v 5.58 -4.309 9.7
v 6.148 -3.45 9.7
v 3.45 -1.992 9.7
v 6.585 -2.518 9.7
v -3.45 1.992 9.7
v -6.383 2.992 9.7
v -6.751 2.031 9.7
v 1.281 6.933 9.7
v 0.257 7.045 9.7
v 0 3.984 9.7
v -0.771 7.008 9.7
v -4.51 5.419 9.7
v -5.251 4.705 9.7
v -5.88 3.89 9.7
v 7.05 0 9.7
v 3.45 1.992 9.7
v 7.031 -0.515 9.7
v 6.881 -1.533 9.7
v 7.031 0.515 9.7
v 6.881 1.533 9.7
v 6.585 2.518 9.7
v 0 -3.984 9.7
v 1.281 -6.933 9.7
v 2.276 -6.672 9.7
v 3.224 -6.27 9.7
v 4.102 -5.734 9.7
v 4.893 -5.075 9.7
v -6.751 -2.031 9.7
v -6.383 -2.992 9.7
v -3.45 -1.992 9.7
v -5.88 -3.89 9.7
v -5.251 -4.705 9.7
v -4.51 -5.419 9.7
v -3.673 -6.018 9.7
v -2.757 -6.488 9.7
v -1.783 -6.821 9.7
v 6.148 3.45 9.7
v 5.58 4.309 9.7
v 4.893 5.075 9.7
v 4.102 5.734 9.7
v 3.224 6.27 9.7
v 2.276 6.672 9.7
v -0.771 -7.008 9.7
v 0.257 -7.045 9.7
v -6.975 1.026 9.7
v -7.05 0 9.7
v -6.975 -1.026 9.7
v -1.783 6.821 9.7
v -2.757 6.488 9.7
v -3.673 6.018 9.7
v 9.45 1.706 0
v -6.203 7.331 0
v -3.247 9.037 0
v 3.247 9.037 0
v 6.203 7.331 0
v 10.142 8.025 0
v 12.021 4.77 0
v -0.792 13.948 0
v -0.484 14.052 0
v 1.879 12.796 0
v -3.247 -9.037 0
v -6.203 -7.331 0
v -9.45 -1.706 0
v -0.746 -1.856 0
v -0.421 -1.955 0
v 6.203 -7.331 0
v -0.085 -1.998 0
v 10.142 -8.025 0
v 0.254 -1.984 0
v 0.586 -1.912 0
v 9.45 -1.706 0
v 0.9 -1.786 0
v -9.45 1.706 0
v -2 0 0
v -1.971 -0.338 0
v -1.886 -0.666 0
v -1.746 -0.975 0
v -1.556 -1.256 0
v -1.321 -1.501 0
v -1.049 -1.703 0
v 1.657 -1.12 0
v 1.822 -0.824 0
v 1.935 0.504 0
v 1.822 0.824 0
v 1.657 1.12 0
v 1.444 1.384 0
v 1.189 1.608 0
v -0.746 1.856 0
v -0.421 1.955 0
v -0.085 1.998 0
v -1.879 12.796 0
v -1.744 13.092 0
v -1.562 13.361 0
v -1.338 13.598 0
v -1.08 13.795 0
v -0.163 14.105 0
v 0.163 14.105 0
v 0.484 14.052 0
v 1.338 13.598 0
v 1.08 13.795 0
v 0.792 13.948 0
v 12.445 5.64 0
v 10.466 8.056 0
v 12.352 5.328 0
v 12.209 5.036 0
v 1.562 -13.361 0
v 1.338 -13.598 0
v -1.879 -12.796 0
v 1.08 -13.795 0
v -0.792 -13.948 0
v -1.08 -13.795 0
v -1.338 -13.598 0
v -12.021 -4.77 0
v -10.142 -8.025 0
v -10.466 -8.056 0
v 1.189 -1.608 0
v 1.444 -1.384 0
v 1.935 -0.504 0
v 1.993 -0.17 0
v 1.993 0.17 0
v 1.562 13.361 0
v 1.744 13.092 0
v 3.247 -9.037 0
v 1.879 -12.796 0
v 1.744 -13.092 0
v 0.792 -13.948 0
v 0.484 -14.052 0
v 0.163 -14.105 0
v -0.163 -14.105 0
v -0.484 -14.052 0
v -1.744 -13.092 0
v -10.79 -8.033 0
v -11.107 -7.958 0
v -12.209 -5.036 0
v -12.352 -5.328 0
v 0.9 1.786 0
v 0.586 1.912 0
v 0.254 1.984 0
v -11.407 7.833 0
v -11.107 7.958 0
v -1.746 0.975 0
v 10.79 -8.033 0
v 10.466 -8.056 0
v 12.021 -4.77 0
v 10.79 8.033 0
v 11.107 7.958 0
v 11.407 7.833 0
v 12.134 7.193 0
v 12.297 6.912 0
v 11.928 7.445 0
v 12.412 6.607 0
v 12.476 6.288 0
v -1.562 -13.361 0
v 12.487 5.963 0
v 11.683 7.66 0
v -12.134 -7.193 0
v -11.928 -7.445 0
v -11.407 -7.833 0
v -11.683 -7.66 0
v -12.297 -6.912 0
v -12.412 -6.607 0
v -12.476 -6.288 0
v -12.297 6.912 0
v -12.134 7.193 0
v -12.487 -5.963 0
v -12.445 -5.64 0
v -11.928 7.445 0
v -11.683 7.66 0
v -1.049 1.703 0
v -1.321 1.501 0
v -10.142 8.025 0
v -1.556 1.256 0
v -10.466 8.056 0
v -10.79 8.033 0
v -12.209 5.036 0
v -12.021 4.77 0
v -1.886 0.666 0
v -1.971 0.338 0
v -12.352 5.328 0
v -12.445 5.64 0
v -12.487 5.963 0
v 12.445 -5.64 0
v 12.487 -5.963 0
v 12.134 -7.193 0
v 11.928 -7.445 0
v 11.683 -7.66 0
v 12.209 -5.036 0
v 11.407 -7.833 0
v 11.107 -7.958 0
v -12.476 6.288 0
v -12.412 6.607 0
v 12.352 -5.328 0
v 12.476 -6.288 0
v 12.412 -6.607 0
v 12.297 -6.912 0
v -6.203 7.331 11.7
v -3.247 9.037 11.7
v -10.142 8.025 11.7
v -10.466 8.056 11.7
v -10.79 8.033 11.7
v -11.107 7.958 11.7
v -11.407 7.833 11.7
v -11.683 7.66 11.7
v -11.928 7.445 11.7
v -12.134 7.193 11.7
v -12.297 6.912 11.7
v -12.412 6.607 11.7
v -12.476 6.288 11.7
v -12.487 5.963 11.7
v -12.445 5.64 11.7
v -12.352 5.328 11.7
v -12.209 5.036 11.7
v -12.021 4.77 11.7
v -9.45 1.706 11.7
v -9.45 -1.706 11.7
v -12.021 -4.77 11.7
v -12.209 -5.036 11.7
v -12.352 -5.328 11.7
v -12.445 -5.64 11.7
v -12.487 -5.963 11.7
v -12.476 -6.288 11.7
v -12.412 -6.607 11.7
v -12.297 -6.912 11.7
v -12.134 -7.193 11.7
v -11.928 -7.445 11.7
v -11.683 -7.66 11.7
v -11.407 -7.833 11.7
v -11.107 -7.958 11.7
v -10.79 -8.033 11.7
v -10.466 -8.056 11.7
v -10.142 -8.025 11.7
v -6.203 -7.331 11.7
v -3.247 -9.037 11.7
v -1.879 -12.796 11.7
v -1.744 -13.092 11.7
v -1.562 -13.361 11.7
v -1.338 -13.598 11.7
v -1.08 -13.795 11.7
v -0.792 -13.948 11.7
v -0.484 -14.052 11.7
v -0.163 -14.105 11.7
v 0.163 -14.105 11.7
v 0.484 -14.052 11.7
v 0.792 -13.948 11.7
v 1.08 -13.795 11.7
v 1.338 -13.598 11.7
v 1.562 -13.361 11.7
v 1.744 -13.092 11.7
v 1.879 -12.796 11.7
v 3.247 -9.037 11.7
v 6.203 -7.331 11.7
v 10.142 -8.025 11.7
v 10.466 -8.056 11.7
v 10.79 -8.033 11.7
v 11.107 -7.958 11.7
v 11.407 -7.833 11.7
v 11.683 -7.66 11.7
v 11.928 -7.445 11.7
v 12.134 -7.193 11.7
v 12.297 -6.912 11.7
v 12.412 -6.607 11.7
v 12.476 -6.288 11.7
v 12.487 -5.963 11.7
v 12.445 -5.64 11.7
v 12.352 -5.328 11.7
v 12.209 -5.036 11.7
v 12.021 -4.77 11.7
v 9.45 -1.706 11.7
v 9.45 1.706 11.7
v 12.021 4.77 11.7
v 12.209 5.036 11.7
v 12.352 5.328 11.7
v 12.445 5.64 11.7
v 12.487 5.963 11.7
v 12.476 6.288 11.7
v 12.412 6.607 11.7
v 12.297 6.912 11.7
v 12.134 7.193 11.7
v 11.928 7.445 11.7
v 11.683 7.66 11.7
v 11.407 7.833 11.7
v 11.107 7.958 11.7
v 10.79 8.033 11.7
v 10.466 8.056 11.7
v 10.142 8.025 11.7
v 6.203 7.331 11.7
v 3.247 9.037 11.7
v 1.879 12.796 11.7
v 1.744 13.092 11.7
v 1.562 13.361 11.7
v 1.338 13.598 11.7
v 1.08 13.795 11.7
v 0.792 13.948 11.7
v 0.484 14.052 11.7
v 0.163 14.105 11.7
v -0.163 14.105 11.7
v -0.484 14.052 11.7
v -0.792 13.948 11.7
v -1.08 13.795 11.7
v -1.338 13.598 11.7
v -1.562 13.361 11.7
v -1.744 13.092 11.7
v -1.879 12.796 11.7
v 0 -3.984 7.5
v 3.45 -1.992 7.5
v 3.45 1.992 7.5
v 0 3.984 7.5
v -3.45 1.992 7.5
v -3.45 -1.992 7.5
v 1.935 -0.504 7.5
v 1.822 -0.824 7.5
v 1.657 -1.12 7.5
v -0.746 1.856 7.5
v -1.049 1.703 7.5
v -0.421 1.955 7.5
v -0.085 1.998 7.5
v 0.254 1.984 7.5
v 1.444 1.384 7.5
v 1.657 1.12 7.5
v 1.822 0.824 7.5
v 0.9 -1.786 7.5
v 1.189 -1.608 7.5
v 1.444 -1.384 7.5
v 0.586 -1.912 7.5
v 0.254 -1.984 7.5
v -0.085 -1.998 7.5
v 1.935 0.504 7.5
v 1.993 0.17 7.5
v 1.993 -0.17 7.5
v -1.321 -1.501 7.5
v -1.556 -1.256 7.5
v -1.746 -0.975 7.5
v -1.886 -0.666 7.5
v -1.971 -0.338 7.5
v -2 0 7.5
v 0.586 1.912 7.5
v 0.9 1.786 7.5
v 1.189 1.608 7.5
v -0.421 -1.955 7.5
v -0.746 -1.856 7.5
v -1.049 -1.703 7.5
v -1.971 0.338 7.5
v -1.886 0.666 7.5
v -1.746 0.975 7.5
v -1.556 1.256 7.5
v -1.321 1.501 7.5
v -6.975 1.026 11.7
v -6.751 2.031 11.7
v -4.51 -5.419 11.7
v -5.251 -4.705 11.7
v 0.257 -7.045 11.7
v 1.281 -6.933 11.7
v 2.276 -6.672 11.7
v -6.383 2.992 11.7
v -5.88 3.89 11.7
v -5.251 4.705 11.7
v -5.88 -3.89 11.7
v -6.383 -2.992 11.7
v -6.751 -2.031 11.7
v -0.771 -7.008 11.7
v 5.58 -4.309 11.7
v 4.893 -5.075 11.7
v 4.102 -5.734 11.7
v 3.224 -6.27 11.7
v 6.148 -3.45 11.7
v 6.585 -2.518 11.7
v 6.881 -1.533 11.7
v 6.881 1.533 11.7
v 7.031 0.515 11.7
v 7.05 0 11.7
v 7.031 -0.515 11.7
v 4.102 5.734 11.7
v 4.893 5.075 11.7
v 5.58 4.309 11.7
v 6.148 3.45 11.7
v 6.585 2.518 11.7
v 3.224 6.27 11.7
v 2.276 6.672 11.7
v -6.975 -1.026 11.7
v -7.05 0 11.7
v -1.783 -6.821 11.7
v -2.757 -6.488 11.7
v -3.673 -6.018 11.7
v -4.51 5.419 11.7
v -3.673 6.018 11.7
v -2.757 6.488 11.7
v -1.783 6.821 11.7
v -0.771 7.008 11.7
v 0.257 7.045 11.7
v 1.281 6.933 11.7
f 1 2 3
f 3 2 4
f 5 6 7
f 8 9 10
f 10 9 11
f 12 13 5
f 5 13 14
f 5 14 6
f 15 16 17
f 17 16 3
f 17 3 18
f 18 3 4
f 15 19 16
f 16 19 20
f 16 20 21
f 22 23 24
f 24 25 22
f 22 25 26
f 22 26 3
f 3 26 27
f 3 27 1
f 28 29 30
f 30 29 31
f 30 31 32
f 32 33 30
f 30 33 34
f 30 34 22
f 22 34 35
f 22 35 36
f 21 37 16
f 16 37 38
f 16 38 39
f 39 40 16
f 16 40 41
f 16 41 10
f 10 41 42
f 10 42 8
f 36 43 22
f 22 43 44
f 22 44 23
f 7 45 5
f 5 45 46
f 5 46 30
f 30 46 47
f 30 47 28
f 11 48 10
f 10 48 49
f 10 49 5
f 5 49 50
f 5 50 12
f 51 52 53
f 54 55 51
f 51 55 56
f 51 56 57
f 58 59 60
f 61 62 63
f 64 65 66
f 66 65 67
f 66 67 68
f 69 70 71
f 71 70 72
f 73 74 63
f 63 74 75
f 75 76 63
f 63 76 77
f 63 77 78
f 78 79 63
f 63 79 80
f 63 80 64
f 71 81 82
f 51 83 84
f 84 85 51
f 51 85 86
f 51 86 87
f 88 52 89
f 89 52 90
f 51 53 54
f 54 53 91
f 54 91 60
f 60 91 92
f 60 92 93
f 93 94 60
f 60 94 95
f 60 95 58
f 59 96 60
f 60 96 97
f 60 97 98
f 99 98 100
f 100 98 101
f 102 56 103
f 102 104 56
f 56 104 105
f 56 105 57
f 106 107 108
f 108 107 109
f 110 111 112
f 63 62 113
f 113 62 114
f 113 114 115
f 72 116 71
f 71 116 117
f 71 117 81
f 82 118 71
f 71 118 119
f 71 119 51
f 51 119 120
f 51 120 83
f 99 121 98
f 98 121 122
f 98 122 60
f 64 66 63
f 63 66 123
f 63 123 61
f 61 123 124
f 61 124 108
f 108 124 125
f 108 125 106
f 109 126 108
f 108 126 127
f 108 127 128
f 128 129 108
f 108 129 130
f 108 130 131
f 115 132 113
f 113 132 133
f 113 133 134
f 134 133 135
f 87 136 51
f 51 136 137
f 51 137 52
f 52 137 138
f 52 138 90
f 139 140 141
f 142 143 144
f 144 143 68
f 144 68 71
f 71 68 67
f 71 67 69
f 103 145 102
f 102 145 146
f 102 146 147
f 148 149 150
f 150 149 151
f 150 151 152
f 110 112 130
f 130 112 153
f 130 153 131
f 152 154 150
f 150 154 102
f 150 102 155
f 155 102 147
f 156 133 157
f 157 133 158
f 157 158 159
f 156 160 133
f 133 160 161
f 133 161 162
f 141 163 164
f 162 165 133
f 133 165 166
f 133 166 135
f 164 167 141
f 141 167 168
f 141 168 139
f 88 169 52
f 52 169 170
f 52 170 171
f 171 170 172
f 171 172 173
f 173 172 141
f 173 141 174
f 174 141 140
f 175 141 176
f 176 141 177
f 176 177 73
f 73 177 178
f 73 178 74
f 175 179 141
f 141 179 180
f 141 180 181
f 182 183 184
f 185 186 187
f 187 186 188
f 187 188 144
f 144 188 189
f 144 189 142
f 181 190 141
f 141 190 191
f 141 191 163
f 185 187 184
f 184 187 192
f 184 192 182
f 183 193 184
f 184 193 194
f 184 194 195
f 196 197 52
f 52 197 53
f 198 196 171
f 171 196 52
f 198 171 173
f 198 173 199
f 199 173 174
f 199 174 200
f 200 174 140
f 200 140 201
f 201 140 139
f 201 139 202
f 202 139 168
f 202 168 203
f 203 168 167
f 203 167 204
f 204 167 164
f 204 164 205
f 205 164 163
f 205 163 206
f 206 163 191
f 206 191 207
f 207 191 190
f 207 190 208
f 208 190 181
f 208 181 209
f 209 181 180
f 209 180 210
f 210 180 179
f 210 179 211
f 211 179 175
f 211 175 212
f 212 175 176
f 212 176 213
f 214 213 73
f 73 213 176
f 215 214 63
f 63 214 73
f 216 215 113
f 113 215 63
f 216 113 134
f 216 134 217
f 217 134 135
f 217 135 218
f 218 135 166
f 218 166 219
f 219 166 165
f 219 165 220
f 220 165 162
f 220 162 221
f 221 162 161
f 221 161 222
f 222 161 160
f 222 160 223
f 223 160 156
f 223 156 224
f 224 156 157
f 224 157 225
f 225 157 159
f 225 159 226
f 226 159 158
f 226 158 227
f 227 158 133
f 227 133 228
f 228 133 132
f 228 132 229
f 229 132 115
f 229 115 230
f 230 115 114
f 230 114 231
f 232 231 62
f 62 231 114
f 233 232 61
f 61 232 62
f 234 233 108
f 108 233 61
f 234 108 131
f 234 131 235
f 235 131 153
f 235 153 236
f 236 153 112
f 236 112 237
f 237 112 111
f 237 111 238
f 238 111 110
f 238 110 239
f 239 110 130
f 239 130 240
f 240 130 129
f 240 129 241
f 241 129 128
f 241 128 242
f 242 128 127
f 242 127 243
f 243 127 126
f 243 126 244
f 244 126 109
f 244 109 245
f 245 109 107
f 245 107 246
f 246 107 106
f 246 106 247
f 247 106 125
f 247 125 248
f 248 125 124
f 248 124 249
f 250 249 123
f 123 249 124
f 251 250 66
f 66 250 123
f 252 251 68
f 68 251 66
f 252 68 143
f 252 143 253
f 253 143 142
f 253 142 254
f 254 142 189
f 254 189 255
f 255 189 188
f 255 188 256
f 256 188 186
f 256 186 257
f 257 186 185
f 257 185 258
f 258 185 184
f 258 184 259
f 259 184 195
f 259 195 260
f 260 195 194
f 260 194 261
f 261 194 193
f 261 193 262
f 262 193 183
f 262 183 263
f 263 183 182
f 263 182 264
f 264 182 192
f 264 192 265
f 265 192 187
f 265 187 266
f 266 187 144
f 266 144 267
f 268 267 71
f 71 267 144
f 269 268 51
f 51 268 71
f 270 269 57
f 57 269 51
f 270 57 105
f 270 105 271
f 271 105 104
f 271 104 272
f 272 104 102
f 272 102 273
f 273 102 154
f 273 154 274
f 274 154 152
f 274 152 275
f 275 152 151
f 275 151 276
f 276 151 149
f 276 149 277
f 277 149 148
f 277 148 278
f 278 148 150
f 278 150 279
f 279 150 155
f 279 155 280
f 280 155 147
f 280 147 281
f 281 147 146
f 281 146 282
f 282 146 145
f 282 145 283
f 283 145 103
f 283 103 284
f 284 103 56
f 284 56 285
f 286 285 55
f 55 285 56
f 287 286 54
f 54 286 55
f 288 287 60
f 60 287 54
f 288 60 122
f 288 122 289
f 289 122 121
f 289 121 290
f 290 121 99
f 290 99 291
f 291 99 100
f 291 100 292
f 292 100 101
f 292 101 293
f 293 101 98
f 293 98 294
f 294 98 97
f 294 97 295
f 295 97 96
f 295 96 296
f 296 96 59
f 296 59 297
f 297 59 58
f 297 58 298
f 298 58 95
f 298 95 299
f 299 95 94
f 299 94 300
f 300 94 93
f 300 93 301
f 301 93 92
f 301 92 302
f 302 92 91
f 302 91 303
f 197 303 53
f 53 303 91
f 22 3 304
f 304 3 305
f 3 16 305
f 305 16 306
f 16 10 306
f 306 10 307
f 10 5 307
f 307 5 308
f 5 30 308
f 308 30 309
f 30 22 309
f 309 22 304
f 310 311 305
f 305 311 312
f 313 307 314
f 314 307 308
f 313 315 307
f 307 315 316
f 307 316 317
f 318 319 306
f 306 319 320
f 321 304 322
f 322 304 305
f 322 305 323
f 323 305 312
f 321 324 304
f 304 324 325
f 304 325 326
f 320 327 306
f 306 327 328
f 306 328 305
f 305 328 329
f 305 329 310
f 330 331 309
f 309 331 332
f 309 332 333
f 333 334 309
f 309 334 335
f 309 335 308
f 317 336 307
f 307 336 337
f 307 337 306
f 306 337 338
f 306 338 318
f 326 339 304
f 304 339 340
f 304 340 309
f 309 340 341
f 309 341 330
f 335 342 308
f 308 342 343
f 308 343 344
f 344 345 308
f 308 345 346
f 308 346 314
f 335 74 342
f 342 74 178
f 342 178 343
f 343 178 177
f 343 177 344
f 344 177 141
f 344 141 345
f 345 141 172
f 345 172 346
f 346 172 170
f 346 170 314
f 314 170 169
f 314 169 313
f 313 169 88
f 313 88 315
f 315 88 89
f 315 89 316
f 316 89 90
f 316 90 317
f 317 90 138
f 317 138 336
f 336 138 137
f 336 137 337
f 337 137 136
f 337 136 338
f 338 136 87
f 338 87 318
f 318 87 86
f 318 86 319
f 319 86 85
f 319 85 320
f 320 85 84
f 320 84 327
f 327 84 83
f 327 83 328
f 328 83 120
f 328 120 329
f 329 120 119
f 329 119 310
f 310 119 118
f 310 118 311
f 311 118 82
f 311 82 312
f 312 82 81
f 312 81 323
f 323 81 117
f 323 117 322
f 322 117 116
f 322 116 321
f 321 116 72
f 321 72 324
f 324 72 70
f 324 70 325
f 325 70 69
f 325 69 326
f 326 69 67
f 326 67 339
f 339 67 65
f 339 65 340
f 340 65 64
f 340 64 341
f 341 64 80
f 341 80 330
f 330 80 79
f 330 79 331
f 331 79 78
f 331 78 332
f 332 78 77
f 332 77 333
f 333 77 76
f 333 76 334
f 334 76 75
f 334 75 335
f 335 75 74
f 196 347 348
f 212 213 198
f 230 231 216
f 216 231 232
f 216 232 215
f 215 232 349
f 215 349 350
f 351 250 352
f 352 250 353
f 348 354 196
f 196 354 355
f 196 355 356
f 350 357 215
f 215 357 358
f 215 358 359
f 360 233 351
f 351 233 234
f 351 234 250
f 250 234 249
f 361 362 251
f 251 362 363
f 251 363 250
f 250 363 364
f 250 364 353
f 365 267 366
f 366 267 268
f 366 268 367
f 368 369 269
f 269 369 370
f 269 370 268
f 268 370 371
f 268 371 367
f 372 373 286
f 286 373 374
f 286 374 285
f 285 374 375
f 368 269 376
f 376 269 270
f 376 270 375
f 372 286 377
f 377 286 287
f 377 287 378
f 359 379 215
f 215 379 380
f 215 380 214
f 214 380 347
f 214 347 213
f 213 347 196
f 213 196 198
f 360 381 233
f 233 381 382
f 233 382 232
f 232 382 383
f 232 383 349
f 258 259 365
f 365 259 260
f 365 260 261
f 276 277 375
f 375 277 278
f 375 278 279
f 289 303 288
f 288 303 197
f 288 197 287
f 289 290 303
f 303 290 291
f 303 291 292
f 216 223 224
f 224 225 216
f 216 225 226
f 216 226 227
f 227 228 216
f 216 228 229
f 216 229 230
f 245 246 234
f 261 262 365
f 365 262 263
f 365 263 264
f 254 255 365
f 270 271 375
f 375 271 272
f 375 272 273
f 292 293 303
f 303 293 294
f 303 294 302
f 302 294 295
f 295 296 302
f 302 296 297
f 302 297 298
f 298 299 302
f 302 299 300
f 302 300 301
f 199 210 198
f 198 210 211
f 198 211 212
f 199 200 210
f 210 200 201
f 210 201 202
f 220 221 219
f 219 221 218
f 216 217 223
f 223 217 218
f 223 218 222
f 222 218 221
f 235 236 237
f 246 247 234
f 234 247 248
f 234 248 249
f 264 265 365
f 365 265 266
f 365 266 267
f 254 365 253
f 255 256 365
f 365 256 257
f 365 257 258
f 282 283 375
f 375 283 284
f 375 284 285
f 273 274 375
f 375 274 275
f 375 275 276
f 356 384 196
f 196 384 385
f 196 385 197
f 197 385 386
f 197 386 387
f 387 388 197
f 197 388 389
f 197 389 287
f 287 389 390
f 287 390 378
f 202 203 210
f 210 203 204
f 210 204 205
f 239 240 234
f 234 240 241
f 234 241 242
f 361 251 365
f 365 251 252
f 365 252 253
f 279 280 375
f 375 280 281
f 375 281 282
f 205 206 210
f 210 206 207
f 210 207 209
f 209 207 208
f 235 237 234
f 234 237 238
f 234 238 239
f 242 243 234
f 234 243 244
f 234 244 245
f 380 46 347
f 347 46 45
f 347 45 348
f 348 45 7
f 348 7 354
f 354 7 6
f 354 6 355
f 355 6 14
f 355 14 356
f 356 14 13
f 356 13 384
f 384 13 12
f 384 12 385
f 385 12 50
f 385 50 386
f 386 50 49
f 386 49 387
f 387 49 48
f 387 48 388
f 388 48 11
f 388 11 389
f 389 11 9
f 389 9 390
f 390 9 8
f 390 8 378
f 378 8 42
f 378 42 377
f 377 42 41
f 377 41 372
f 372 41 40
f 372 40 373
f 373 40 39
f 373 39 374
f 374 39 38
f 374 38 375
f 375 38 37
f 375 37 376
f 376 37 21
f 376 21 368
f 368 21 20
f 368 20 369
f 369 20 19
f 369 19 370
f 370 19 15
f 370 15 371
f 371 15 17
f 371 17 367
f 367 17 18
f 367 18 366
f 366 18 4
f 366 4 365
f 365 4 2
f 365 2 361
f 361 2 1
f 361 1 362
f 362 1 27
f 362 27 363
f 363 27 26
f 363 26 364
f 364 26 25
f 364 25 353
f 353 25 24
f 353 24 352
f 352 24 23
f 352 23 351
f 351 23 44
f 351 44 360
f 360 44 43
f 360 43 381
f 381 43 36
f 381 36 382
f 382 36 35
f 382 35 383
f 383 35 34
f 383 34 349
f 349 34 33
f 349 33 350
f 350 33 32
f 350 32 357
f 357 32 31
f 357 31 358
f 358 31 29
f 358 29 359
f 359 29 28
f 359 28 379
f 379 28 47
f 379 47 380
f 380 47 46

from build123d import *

# Parameters (mm, degrees)
BOSS_EXTRUDE1_DEPTH = 9.7
SKETCH5_R           = 2
BOSS_EXTRUDE2_DEPTH = 7.5
SKETCH6_R           = 7.05
BOSS_EXTRUDE3_DEPTH = 2


with BuildPart() as part:
    # Sketch1 → Boss-Extrude1 (new body)
    with BuildSketch(Plane.XY):
        with BuildLine():
            Line((-3.247465815, 9.036994825), (-1.879385242, 12.795765308))
            ThreePointArc((-1.879385242, 12.795765308), (0, 14.111725022), (1.879385242, 12.795765308))
            Line((1.879385242, 12.795765308), (3.247465815, 9.036994825))
            Line((3.247465815, 9.036994825), (6.202534185, 7.330885306))
            Line((6.202534185, 7.330885306), (10.141765197, 8.025478017))
            ThreePointArc((10.141765197, 8.025478017), (12.22111236, 7.055862511), (12.021150439, 4.770287292))
            Line((12.021150439, 4.770287292), (9.45, 1.706109519))
            Line((9.45, 1.706109519), (9.45, -1.706109519))
            Line((9.45, -1.706109519), (12.021150439, -4.770287292))
            ThreePointArc((12.021150439, -4.770287292), (12.22111236, -7.055862511), (10.141765197, -8.025478017))
            Line((10.141765197, -8.025478017), (6.202534185, -7.330885306))
            Line((6.202534185, -7.330885306), (3.247465815, -9.036994825))
            Line((3.247465815, -9.036994825), (1.879385242, -12.795765308))
            ThreePointArc((1.879385242, -12.795765308), (0, -14.111725022), (-1.879385242, -12.795765308))
            Line((-1.879385242, -12.795765308), (-3.247465815, -9.036994825))
            Line((-3.247465815, -9.036994825), (-6.202534185, -7.330885306))
            Line((-6.202534185, -7.330885306), (-10.141765197, -8.025478017))
            ThreePointArc((-10.141765197, -8.025478017), (-12.22111236, -7.055862511), (-12.021150439, -4.770287292))
            Line((-12.021150439, -4.770287292), (-9.45, -1.706109519))
            Line((-9.45, -1.706109519), (-9.45, 1.706109519))
            Line((-9.45, 1.706109519), (-12.021150439, 4.770287292))
            ThreePointArc((-12.021150439, 4.770287292), (-12.22111236, 7.055862511), (-10.141765197, 8.025478017))
            Line((-10.141765197, 8.025478017), (-6.202534185, 7.330885306))
            Line((-6.202534185, 7.330885306), (-3.247465815, 9.036994825))
        make_face()
        Polygon((3.45, -1.991858429), (3.45, 1.991858429), (0, 3.983716857), (-3.45, 1.991858429), (-3.45, -1.991858429), (0, -3.983716857), align=None, mode=Mode.SUBTRACT)
    extrude(amount=BOSS_EXTRUDE1_DEPTH)

    # Sketch5 → Boss-Extrude2 (add)
    with BuildSketch(Plane(origin=(0, 0, 0), x_dir=(-1, 0, 0), z_dir=(0, 0, -1))):
        Polygon((-3.45, 1.991858429), (0, 3.983716857), (3.45, 1.991858429), (3.45, -1.991858429), (0, -3.983716857), (-3.45, -1.991858429), align=None)
        Circle(SKETCH5_R, mode=Mode.SUBTRACT)
    extrude(amount=-BOSS_EXTRUDE2_DEPTH)

    # Sketch6 → Boss-Extrude3 (add)
    with BuildSketch(Plane.XY.offset(9.7)):
        with BuildLine():
            Line((-3.247465815, 9.036994825), (-6.202534185, 7.330885306))
            Line((-6.202534185, 7.330885306), (-10.141765197, 8.025478017))
            ThreePointArc((-10.141765197, 8.025478017), (-12.22111236, 7.055862511), (-12.021150439, 4.770287292))
            Line((-12.021150439, 4.770287292), (-9.45, 1.706109519))
            Line((-9.45, 1.706109519), (-9.45, -1.706109519))
            Line((-9.45, -1.706109519), (-12.021150439, -4.770287292))
            ThreePointArc((-12.021150439, -4.770287292), (-12.22111236, -7.055862511), (-10.141765197, -8.025478017))
            Line((-10.141765197, -8.025478017), (-6.202534185, -7.330885306))
            Line((-6.202534185, -7.330885306), (-3.247465815, -9.036994825))
            Line((-3.247465815, -9.036994825), (-1.879385242, -12.795765308))
            ThreePointArc((-1.879385242, -12.795765308), (0, -14.111725022), (1.879385242, -12.795765308))
            Line((1.879385242, -12.795765308), (3.247465815, -9.036994825))
            Line((3.247465815, -9.036994825), (6.202534185, -7.330885306))
            Line((6.202534185, -7.330885306), (10.141765197, -8.025478017))
            ThreePointArc((10.141765197, -8.025478017), (12.22111236, -7.055862511), (12.021150439, -4.770287292))
            Line((12.021150439, -4.770287292), (9.45, -1.706109519))
            Line((9.45, -1.706109519), (9.45, 1.706109519))
            Line((9.45, 1.706109519), (12.021150439, 4.770287292))
            ThreePointArc((12.021150439, 4.770287292), (12.22111236, 7.055862511), (10.141765197, 8.025478017))
            Line((10.141765197, 8.025478017), (6.202534185, 7.330885306))
            Line((6.202534185, 7.330885306), (3.247465815, 9.036994825))
            Line((3.247465815, 9.036994825), (1.879385242, 12.795765308))
            ThreePointArc((1.879385242, 12.795765308), (0, 14.111725022), (-1.879385242, 12.795765308))
            Line((-1.879385242, 12.795765308), (-3.247465815, 9.036994825))
        make_face()
        Circle(SKETCH6_R, mode=Mode.SUBTRACT)
    extrude(amount=BOSS_EXTRUDE3_DEPTH)


solid = part.part
